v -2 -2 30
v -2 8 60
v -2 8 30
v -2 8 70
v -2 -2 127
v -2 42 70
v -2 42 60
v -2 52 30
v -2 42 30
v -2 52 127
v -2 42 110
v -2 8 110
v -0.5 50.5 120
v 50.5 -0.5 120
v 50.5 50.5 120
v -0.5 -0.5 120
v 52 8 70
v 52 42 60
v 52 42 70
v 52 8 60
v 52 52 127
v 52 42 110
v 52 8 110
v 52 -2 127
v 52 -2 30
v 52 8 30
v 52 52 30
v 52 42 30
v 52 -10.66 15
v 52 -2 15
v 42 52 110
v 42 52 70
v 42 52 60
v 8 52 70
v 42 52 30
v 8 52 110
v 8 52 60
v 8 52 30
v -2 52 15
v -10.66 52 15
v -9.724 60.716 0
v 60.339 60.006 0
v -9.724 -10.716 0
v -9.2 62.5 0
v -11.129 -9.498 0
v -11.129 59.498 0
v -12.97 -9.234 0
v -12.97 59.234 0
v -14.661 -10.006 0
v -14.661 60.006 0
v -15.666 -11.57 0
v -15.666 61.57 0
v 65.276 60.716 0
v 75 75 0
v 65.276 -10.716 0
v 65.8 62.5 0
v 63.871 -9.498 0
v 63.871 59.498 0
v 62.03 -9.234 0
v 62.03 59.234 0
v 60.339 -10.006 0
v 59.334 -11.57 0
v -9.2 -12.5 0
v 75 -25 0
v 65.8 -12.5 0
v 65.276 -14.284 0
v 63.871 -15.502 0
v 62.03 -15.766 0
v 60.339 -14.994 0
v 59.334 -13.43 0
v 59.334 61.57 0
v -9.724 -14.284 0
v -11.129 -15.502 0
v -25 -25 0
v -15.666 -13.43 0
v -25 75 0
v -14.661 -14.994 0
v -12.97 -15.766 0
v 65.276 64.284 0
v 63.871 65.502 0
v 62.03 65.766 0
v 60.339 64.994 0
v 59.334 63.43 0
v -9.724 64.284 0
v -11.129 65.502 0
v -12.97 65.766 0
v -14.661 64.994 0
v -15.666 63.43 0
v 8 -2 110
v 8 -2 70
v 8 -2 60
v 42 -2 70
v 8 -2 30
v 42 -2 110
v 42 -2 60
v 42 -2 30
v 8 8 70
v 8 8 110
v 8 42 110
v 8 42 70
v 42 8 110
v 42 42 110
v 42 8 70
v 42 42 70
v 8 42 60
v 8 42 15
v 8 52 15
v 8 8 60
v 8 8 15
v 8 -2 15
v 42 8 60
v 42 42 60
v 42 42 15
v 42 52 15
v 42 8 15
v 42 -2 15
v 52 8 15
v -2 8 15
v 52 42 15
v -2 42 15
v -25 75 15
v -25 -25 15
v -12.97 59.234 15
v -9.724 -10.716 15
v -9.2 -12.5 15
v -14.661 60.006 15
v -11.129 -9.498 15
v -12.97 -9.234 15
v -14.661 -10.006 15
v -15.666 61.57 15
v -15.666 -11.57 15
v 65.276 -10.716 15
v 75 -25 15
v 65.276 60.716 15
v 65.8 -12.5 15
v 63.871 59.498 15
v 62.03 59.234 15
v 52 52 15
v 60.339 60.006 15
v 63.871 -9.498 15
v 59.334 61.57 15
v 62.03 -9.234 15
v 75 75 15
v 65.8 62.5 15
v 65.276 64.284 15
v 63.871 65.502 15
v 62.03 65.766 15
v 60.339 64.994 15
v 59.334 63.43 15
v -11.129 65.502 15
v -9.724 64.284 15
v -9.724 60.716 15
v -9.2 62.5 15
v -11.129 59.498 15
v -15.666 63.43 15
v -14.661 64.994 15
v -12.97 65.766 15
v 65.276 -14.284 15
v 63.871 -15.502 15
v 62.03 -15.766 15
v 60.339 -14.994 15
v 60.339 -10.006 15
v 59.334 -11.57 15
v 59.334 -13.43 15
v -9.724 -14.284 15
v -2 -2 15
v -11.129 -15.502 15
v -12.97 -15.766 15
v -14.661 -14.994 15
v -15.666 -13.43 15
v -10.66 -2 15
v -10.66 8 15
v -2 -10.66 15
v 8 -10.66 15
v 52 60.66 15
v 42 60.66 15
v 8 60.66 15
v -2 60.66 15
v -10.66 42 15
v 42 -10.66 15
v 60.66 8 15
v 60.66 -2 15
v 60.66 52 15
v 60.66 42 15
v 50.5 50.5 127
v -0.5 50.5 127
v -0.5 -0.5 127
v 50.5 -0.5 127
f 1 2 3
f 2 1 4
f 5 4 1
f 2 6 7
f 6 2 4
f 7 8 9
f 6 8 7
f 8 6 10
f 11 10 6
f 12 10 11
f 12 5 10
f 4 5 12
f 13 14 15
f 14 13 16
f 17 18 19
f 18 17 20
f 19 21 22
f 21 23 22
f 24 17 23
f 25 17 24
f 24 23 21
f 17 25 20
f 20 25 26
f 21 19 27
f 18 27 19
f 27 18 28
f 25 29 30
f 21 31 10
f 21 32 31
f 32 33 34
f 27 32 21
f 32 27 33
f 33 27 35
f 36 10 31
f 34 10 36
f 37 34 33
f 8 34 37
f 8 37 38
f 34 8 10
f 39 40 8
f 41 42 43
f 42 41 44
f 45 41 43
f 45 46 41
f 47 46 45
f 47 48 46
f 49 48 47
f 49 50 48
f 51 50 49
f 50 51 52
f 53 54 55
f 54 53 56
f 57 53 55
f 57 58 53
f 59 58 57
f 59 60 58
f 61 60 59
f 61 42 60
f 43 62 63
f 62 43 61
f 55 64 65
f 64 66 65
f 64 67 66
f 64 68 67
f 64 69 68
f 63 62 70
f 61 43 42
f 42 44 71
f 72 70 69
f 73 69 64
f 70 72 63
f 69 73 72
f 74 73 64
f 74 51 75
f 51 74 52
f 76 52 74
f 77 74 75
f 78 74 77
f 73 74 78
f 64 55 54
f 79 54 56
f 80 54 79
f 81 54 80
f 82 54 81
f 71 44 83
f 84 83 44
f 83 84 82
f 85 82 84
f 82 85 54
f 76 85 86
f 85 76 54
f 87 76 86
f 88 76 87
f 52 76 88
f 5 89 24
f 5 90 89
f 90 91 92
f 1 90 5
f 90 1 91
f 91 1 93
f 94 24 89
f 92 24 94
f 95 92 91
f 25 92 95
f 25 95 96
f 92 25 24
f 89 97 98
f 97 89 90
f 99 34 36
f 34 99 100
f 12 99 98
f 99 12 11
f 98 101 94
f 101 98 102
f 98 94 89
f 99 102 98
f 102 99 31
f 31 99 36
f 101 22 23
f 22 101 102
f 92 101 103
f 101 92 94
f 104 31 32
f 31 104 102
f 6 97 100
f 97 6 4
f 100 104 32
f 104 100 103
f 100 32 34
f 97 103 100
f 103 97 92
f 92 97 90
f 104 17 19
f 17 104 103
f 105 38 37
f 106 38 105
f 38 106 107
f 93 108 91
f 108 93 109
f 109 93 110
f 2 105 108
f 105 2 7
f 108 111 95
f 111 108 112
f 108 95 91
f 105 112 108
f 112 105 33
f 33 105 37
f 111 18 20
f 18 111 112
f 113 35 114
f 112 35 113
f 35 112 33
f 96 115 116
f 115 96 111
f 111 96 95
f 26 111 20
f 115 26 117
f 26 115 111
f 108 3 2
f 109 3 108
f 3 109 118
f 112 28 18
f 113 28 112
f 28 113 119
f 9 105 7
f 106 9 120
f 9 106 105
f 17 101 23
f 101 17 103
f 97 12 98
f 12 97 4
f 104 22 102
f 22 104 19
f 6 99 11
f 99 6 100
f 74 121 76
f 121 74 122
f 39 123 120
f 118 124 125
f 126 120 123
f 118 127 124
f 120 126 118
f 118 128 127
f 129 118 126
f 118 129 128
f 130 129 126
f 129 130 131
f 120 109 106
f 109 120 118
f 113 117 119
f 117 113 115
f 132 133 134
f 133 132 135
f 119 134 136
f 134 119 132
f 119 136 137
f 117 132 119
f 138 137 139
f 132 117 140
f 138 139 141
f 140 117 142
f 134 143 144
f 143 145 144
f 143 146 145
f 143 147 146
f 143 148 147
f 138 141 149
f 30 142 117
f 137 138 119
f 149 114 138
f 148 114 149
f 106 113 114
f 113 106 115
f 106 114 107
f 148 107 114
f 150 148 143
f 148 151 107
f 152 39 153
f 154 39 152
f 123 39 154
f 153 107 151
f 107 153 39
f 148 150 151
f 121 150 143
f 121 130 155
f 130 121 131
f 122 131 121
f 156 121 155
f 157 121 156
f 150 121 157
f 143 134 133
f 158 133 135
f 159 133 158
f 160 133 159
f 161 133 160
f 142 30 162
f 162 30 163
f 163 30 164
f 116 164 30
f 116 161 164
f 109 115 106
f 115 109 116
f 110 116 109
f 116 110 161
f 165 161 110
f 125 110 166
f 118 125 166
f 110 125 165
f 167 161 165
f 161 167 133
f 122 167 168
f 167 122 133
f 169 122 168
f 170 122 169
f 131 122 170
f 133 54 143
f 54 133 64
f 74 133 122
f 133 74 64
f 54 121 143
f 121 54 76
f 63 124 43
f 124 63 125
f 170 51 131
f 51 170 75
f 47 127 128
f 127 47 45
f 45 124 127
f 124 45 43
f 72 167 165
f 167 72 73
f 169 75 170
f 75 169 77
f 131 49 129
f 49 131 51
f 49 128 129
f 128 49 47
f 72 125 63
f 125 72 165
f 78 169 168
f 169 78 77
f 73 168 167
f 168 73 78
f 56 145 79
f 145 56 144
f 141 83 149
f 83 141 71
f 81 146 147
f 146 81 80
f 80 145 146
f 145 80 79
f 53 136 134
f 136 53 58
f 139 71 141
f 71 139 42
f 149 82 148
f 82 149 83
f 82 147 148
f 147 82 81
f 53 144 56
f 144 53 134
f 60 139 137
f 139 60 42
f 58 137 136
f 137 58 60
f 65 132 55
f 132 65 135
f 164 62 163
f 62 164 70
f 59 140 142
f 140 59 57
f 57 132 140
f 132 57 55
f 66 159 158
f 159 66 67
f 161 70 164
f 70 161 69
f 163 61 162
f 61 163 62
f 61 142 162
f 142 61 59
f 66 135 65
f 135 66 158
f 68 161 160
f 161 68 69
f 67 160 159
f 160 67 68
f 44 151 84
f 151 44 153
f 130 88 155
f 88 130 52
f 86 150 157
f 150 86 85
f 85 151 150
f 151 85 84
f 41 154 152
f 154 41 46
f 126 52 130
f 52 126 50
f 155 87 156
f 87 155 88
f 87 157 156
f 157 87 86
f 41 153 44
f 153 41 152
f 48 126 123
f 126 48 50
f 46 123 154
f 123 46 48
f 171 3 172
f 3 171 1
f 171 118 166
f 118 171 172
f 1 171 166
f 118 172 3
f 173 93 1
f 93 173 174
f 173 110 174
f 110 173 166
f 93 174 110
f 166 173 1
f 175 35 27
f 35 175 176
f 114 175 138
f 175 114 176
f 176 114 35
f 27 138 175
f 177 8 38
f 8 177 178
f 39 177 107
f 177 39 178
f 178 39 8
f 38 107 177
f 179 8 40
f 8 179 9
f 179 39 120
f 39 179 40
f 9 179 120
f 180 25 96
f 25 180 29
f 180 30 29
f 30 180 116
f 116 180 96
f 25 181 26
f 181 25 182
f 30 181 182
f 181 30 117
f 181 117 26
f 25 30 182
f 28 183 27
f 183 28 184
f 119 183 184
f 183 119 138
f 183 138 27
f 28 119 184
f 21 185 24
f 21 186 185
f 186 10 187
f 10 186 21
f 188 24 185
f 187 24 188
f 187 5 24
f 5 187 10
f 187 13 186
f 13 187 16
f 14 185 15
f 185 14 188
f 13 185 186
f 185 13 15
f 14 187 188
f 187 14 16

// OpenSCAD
//suporte do cubo
difference(){
translate([-2,-2,0])cube([54,54,120]);
#translate([8,-2,70])cube([34,54,40]);
#translate([8,-2,10])cube([34,54,50]);
#translate([-2,8,10])cube([54,34,50]);
#translate([-2,8,70])cube([54,34,40]);
}
 difference(){translate([-25,-25,0])cube([100,100,15]);
#translate([-12.5,-12.5,0])cylinder(h=15, r=3.3);
#translate([62.5,62.5,0])cylinder(h=15, r=3.3);
#translate([62.5,-12.5,0])cylinder(h=15, r=3.3);
#translate([-12.5,62.5,0])cylinder(h=15, r=3.3);
 }
translate([-2,-2,115])
    cube([1.5,54,12]);
translate([50.5,-2,115])
    cube([1.5,54,12]);
translate([-2,50.5,115])
    cube([54,1.5,12]);
translate([-2,-2,115])
    cube([54,1.5,12]);

//base
rotate(a=[0,0,0])translate([-2,8,20])difference(){rotate(a=[90,30,0])translate([0,0,0])cylinder(10,10,10,$fn=3);
    #translate([0,-10,-5])cube([10,10,15]);
}
rotate(a=[0,0,90])translate([-2,2,20])difference(){rotate(a=[90,30,0])translate([0,0,0])cylinder(10,10,10,$fn=3);
    #translate([0,-10,-5])cube([10,10,15]);
}
translate([52,52,20])rotate(a=[0,0,270])difference(){rotate(a=[90,30,0])translate([0,0,0])cylinder(10,10,10,$fn=3);
    #translate([0,-10,-5])cube([10,10,15]);
}
translate([8,52,20])rotate(a=[0,0,270])difference(){rotate(a=[90,30,0])translate([0,0,0])cylinder(10,10,10,$fn=3);
    #translate([0,-10,-5])cube([10,10,15]);
}
rotate(a=[0,0,0])translate([-2,52,20])difference(){rotate(a=[90,30,0])translate([0,0,0])cylinder(10,10,10,$fn=3);
    #translate([0,-10,-5])cube([10,10,15]);
}
rotate(a=[0,0,90])translate([-2,-42,20])difference(){rotate(a=[90,30,0])translate([0,0,0])cylinder(10,10,10,$fn=3);
    #translate([0,-10,-5])cube([10,10,15]);
}
translate([52,-2,20])rotate(a=[0,0,180])difference(){rotate(a=[90,30,0])translate([0,0,0])cylinder(10,10,10,$fn=3);
    #translate([0,-10,-5])cube([10,10,15]);
}
translate([52,42,20])rotate(a=[0,0,180])difference(){rotate(a=[90,30,0])translate([0,0,0])cylinder(10,10,10,$fn=3);
    #translate([0,-10,-5])cube([10,10,15]);
}
